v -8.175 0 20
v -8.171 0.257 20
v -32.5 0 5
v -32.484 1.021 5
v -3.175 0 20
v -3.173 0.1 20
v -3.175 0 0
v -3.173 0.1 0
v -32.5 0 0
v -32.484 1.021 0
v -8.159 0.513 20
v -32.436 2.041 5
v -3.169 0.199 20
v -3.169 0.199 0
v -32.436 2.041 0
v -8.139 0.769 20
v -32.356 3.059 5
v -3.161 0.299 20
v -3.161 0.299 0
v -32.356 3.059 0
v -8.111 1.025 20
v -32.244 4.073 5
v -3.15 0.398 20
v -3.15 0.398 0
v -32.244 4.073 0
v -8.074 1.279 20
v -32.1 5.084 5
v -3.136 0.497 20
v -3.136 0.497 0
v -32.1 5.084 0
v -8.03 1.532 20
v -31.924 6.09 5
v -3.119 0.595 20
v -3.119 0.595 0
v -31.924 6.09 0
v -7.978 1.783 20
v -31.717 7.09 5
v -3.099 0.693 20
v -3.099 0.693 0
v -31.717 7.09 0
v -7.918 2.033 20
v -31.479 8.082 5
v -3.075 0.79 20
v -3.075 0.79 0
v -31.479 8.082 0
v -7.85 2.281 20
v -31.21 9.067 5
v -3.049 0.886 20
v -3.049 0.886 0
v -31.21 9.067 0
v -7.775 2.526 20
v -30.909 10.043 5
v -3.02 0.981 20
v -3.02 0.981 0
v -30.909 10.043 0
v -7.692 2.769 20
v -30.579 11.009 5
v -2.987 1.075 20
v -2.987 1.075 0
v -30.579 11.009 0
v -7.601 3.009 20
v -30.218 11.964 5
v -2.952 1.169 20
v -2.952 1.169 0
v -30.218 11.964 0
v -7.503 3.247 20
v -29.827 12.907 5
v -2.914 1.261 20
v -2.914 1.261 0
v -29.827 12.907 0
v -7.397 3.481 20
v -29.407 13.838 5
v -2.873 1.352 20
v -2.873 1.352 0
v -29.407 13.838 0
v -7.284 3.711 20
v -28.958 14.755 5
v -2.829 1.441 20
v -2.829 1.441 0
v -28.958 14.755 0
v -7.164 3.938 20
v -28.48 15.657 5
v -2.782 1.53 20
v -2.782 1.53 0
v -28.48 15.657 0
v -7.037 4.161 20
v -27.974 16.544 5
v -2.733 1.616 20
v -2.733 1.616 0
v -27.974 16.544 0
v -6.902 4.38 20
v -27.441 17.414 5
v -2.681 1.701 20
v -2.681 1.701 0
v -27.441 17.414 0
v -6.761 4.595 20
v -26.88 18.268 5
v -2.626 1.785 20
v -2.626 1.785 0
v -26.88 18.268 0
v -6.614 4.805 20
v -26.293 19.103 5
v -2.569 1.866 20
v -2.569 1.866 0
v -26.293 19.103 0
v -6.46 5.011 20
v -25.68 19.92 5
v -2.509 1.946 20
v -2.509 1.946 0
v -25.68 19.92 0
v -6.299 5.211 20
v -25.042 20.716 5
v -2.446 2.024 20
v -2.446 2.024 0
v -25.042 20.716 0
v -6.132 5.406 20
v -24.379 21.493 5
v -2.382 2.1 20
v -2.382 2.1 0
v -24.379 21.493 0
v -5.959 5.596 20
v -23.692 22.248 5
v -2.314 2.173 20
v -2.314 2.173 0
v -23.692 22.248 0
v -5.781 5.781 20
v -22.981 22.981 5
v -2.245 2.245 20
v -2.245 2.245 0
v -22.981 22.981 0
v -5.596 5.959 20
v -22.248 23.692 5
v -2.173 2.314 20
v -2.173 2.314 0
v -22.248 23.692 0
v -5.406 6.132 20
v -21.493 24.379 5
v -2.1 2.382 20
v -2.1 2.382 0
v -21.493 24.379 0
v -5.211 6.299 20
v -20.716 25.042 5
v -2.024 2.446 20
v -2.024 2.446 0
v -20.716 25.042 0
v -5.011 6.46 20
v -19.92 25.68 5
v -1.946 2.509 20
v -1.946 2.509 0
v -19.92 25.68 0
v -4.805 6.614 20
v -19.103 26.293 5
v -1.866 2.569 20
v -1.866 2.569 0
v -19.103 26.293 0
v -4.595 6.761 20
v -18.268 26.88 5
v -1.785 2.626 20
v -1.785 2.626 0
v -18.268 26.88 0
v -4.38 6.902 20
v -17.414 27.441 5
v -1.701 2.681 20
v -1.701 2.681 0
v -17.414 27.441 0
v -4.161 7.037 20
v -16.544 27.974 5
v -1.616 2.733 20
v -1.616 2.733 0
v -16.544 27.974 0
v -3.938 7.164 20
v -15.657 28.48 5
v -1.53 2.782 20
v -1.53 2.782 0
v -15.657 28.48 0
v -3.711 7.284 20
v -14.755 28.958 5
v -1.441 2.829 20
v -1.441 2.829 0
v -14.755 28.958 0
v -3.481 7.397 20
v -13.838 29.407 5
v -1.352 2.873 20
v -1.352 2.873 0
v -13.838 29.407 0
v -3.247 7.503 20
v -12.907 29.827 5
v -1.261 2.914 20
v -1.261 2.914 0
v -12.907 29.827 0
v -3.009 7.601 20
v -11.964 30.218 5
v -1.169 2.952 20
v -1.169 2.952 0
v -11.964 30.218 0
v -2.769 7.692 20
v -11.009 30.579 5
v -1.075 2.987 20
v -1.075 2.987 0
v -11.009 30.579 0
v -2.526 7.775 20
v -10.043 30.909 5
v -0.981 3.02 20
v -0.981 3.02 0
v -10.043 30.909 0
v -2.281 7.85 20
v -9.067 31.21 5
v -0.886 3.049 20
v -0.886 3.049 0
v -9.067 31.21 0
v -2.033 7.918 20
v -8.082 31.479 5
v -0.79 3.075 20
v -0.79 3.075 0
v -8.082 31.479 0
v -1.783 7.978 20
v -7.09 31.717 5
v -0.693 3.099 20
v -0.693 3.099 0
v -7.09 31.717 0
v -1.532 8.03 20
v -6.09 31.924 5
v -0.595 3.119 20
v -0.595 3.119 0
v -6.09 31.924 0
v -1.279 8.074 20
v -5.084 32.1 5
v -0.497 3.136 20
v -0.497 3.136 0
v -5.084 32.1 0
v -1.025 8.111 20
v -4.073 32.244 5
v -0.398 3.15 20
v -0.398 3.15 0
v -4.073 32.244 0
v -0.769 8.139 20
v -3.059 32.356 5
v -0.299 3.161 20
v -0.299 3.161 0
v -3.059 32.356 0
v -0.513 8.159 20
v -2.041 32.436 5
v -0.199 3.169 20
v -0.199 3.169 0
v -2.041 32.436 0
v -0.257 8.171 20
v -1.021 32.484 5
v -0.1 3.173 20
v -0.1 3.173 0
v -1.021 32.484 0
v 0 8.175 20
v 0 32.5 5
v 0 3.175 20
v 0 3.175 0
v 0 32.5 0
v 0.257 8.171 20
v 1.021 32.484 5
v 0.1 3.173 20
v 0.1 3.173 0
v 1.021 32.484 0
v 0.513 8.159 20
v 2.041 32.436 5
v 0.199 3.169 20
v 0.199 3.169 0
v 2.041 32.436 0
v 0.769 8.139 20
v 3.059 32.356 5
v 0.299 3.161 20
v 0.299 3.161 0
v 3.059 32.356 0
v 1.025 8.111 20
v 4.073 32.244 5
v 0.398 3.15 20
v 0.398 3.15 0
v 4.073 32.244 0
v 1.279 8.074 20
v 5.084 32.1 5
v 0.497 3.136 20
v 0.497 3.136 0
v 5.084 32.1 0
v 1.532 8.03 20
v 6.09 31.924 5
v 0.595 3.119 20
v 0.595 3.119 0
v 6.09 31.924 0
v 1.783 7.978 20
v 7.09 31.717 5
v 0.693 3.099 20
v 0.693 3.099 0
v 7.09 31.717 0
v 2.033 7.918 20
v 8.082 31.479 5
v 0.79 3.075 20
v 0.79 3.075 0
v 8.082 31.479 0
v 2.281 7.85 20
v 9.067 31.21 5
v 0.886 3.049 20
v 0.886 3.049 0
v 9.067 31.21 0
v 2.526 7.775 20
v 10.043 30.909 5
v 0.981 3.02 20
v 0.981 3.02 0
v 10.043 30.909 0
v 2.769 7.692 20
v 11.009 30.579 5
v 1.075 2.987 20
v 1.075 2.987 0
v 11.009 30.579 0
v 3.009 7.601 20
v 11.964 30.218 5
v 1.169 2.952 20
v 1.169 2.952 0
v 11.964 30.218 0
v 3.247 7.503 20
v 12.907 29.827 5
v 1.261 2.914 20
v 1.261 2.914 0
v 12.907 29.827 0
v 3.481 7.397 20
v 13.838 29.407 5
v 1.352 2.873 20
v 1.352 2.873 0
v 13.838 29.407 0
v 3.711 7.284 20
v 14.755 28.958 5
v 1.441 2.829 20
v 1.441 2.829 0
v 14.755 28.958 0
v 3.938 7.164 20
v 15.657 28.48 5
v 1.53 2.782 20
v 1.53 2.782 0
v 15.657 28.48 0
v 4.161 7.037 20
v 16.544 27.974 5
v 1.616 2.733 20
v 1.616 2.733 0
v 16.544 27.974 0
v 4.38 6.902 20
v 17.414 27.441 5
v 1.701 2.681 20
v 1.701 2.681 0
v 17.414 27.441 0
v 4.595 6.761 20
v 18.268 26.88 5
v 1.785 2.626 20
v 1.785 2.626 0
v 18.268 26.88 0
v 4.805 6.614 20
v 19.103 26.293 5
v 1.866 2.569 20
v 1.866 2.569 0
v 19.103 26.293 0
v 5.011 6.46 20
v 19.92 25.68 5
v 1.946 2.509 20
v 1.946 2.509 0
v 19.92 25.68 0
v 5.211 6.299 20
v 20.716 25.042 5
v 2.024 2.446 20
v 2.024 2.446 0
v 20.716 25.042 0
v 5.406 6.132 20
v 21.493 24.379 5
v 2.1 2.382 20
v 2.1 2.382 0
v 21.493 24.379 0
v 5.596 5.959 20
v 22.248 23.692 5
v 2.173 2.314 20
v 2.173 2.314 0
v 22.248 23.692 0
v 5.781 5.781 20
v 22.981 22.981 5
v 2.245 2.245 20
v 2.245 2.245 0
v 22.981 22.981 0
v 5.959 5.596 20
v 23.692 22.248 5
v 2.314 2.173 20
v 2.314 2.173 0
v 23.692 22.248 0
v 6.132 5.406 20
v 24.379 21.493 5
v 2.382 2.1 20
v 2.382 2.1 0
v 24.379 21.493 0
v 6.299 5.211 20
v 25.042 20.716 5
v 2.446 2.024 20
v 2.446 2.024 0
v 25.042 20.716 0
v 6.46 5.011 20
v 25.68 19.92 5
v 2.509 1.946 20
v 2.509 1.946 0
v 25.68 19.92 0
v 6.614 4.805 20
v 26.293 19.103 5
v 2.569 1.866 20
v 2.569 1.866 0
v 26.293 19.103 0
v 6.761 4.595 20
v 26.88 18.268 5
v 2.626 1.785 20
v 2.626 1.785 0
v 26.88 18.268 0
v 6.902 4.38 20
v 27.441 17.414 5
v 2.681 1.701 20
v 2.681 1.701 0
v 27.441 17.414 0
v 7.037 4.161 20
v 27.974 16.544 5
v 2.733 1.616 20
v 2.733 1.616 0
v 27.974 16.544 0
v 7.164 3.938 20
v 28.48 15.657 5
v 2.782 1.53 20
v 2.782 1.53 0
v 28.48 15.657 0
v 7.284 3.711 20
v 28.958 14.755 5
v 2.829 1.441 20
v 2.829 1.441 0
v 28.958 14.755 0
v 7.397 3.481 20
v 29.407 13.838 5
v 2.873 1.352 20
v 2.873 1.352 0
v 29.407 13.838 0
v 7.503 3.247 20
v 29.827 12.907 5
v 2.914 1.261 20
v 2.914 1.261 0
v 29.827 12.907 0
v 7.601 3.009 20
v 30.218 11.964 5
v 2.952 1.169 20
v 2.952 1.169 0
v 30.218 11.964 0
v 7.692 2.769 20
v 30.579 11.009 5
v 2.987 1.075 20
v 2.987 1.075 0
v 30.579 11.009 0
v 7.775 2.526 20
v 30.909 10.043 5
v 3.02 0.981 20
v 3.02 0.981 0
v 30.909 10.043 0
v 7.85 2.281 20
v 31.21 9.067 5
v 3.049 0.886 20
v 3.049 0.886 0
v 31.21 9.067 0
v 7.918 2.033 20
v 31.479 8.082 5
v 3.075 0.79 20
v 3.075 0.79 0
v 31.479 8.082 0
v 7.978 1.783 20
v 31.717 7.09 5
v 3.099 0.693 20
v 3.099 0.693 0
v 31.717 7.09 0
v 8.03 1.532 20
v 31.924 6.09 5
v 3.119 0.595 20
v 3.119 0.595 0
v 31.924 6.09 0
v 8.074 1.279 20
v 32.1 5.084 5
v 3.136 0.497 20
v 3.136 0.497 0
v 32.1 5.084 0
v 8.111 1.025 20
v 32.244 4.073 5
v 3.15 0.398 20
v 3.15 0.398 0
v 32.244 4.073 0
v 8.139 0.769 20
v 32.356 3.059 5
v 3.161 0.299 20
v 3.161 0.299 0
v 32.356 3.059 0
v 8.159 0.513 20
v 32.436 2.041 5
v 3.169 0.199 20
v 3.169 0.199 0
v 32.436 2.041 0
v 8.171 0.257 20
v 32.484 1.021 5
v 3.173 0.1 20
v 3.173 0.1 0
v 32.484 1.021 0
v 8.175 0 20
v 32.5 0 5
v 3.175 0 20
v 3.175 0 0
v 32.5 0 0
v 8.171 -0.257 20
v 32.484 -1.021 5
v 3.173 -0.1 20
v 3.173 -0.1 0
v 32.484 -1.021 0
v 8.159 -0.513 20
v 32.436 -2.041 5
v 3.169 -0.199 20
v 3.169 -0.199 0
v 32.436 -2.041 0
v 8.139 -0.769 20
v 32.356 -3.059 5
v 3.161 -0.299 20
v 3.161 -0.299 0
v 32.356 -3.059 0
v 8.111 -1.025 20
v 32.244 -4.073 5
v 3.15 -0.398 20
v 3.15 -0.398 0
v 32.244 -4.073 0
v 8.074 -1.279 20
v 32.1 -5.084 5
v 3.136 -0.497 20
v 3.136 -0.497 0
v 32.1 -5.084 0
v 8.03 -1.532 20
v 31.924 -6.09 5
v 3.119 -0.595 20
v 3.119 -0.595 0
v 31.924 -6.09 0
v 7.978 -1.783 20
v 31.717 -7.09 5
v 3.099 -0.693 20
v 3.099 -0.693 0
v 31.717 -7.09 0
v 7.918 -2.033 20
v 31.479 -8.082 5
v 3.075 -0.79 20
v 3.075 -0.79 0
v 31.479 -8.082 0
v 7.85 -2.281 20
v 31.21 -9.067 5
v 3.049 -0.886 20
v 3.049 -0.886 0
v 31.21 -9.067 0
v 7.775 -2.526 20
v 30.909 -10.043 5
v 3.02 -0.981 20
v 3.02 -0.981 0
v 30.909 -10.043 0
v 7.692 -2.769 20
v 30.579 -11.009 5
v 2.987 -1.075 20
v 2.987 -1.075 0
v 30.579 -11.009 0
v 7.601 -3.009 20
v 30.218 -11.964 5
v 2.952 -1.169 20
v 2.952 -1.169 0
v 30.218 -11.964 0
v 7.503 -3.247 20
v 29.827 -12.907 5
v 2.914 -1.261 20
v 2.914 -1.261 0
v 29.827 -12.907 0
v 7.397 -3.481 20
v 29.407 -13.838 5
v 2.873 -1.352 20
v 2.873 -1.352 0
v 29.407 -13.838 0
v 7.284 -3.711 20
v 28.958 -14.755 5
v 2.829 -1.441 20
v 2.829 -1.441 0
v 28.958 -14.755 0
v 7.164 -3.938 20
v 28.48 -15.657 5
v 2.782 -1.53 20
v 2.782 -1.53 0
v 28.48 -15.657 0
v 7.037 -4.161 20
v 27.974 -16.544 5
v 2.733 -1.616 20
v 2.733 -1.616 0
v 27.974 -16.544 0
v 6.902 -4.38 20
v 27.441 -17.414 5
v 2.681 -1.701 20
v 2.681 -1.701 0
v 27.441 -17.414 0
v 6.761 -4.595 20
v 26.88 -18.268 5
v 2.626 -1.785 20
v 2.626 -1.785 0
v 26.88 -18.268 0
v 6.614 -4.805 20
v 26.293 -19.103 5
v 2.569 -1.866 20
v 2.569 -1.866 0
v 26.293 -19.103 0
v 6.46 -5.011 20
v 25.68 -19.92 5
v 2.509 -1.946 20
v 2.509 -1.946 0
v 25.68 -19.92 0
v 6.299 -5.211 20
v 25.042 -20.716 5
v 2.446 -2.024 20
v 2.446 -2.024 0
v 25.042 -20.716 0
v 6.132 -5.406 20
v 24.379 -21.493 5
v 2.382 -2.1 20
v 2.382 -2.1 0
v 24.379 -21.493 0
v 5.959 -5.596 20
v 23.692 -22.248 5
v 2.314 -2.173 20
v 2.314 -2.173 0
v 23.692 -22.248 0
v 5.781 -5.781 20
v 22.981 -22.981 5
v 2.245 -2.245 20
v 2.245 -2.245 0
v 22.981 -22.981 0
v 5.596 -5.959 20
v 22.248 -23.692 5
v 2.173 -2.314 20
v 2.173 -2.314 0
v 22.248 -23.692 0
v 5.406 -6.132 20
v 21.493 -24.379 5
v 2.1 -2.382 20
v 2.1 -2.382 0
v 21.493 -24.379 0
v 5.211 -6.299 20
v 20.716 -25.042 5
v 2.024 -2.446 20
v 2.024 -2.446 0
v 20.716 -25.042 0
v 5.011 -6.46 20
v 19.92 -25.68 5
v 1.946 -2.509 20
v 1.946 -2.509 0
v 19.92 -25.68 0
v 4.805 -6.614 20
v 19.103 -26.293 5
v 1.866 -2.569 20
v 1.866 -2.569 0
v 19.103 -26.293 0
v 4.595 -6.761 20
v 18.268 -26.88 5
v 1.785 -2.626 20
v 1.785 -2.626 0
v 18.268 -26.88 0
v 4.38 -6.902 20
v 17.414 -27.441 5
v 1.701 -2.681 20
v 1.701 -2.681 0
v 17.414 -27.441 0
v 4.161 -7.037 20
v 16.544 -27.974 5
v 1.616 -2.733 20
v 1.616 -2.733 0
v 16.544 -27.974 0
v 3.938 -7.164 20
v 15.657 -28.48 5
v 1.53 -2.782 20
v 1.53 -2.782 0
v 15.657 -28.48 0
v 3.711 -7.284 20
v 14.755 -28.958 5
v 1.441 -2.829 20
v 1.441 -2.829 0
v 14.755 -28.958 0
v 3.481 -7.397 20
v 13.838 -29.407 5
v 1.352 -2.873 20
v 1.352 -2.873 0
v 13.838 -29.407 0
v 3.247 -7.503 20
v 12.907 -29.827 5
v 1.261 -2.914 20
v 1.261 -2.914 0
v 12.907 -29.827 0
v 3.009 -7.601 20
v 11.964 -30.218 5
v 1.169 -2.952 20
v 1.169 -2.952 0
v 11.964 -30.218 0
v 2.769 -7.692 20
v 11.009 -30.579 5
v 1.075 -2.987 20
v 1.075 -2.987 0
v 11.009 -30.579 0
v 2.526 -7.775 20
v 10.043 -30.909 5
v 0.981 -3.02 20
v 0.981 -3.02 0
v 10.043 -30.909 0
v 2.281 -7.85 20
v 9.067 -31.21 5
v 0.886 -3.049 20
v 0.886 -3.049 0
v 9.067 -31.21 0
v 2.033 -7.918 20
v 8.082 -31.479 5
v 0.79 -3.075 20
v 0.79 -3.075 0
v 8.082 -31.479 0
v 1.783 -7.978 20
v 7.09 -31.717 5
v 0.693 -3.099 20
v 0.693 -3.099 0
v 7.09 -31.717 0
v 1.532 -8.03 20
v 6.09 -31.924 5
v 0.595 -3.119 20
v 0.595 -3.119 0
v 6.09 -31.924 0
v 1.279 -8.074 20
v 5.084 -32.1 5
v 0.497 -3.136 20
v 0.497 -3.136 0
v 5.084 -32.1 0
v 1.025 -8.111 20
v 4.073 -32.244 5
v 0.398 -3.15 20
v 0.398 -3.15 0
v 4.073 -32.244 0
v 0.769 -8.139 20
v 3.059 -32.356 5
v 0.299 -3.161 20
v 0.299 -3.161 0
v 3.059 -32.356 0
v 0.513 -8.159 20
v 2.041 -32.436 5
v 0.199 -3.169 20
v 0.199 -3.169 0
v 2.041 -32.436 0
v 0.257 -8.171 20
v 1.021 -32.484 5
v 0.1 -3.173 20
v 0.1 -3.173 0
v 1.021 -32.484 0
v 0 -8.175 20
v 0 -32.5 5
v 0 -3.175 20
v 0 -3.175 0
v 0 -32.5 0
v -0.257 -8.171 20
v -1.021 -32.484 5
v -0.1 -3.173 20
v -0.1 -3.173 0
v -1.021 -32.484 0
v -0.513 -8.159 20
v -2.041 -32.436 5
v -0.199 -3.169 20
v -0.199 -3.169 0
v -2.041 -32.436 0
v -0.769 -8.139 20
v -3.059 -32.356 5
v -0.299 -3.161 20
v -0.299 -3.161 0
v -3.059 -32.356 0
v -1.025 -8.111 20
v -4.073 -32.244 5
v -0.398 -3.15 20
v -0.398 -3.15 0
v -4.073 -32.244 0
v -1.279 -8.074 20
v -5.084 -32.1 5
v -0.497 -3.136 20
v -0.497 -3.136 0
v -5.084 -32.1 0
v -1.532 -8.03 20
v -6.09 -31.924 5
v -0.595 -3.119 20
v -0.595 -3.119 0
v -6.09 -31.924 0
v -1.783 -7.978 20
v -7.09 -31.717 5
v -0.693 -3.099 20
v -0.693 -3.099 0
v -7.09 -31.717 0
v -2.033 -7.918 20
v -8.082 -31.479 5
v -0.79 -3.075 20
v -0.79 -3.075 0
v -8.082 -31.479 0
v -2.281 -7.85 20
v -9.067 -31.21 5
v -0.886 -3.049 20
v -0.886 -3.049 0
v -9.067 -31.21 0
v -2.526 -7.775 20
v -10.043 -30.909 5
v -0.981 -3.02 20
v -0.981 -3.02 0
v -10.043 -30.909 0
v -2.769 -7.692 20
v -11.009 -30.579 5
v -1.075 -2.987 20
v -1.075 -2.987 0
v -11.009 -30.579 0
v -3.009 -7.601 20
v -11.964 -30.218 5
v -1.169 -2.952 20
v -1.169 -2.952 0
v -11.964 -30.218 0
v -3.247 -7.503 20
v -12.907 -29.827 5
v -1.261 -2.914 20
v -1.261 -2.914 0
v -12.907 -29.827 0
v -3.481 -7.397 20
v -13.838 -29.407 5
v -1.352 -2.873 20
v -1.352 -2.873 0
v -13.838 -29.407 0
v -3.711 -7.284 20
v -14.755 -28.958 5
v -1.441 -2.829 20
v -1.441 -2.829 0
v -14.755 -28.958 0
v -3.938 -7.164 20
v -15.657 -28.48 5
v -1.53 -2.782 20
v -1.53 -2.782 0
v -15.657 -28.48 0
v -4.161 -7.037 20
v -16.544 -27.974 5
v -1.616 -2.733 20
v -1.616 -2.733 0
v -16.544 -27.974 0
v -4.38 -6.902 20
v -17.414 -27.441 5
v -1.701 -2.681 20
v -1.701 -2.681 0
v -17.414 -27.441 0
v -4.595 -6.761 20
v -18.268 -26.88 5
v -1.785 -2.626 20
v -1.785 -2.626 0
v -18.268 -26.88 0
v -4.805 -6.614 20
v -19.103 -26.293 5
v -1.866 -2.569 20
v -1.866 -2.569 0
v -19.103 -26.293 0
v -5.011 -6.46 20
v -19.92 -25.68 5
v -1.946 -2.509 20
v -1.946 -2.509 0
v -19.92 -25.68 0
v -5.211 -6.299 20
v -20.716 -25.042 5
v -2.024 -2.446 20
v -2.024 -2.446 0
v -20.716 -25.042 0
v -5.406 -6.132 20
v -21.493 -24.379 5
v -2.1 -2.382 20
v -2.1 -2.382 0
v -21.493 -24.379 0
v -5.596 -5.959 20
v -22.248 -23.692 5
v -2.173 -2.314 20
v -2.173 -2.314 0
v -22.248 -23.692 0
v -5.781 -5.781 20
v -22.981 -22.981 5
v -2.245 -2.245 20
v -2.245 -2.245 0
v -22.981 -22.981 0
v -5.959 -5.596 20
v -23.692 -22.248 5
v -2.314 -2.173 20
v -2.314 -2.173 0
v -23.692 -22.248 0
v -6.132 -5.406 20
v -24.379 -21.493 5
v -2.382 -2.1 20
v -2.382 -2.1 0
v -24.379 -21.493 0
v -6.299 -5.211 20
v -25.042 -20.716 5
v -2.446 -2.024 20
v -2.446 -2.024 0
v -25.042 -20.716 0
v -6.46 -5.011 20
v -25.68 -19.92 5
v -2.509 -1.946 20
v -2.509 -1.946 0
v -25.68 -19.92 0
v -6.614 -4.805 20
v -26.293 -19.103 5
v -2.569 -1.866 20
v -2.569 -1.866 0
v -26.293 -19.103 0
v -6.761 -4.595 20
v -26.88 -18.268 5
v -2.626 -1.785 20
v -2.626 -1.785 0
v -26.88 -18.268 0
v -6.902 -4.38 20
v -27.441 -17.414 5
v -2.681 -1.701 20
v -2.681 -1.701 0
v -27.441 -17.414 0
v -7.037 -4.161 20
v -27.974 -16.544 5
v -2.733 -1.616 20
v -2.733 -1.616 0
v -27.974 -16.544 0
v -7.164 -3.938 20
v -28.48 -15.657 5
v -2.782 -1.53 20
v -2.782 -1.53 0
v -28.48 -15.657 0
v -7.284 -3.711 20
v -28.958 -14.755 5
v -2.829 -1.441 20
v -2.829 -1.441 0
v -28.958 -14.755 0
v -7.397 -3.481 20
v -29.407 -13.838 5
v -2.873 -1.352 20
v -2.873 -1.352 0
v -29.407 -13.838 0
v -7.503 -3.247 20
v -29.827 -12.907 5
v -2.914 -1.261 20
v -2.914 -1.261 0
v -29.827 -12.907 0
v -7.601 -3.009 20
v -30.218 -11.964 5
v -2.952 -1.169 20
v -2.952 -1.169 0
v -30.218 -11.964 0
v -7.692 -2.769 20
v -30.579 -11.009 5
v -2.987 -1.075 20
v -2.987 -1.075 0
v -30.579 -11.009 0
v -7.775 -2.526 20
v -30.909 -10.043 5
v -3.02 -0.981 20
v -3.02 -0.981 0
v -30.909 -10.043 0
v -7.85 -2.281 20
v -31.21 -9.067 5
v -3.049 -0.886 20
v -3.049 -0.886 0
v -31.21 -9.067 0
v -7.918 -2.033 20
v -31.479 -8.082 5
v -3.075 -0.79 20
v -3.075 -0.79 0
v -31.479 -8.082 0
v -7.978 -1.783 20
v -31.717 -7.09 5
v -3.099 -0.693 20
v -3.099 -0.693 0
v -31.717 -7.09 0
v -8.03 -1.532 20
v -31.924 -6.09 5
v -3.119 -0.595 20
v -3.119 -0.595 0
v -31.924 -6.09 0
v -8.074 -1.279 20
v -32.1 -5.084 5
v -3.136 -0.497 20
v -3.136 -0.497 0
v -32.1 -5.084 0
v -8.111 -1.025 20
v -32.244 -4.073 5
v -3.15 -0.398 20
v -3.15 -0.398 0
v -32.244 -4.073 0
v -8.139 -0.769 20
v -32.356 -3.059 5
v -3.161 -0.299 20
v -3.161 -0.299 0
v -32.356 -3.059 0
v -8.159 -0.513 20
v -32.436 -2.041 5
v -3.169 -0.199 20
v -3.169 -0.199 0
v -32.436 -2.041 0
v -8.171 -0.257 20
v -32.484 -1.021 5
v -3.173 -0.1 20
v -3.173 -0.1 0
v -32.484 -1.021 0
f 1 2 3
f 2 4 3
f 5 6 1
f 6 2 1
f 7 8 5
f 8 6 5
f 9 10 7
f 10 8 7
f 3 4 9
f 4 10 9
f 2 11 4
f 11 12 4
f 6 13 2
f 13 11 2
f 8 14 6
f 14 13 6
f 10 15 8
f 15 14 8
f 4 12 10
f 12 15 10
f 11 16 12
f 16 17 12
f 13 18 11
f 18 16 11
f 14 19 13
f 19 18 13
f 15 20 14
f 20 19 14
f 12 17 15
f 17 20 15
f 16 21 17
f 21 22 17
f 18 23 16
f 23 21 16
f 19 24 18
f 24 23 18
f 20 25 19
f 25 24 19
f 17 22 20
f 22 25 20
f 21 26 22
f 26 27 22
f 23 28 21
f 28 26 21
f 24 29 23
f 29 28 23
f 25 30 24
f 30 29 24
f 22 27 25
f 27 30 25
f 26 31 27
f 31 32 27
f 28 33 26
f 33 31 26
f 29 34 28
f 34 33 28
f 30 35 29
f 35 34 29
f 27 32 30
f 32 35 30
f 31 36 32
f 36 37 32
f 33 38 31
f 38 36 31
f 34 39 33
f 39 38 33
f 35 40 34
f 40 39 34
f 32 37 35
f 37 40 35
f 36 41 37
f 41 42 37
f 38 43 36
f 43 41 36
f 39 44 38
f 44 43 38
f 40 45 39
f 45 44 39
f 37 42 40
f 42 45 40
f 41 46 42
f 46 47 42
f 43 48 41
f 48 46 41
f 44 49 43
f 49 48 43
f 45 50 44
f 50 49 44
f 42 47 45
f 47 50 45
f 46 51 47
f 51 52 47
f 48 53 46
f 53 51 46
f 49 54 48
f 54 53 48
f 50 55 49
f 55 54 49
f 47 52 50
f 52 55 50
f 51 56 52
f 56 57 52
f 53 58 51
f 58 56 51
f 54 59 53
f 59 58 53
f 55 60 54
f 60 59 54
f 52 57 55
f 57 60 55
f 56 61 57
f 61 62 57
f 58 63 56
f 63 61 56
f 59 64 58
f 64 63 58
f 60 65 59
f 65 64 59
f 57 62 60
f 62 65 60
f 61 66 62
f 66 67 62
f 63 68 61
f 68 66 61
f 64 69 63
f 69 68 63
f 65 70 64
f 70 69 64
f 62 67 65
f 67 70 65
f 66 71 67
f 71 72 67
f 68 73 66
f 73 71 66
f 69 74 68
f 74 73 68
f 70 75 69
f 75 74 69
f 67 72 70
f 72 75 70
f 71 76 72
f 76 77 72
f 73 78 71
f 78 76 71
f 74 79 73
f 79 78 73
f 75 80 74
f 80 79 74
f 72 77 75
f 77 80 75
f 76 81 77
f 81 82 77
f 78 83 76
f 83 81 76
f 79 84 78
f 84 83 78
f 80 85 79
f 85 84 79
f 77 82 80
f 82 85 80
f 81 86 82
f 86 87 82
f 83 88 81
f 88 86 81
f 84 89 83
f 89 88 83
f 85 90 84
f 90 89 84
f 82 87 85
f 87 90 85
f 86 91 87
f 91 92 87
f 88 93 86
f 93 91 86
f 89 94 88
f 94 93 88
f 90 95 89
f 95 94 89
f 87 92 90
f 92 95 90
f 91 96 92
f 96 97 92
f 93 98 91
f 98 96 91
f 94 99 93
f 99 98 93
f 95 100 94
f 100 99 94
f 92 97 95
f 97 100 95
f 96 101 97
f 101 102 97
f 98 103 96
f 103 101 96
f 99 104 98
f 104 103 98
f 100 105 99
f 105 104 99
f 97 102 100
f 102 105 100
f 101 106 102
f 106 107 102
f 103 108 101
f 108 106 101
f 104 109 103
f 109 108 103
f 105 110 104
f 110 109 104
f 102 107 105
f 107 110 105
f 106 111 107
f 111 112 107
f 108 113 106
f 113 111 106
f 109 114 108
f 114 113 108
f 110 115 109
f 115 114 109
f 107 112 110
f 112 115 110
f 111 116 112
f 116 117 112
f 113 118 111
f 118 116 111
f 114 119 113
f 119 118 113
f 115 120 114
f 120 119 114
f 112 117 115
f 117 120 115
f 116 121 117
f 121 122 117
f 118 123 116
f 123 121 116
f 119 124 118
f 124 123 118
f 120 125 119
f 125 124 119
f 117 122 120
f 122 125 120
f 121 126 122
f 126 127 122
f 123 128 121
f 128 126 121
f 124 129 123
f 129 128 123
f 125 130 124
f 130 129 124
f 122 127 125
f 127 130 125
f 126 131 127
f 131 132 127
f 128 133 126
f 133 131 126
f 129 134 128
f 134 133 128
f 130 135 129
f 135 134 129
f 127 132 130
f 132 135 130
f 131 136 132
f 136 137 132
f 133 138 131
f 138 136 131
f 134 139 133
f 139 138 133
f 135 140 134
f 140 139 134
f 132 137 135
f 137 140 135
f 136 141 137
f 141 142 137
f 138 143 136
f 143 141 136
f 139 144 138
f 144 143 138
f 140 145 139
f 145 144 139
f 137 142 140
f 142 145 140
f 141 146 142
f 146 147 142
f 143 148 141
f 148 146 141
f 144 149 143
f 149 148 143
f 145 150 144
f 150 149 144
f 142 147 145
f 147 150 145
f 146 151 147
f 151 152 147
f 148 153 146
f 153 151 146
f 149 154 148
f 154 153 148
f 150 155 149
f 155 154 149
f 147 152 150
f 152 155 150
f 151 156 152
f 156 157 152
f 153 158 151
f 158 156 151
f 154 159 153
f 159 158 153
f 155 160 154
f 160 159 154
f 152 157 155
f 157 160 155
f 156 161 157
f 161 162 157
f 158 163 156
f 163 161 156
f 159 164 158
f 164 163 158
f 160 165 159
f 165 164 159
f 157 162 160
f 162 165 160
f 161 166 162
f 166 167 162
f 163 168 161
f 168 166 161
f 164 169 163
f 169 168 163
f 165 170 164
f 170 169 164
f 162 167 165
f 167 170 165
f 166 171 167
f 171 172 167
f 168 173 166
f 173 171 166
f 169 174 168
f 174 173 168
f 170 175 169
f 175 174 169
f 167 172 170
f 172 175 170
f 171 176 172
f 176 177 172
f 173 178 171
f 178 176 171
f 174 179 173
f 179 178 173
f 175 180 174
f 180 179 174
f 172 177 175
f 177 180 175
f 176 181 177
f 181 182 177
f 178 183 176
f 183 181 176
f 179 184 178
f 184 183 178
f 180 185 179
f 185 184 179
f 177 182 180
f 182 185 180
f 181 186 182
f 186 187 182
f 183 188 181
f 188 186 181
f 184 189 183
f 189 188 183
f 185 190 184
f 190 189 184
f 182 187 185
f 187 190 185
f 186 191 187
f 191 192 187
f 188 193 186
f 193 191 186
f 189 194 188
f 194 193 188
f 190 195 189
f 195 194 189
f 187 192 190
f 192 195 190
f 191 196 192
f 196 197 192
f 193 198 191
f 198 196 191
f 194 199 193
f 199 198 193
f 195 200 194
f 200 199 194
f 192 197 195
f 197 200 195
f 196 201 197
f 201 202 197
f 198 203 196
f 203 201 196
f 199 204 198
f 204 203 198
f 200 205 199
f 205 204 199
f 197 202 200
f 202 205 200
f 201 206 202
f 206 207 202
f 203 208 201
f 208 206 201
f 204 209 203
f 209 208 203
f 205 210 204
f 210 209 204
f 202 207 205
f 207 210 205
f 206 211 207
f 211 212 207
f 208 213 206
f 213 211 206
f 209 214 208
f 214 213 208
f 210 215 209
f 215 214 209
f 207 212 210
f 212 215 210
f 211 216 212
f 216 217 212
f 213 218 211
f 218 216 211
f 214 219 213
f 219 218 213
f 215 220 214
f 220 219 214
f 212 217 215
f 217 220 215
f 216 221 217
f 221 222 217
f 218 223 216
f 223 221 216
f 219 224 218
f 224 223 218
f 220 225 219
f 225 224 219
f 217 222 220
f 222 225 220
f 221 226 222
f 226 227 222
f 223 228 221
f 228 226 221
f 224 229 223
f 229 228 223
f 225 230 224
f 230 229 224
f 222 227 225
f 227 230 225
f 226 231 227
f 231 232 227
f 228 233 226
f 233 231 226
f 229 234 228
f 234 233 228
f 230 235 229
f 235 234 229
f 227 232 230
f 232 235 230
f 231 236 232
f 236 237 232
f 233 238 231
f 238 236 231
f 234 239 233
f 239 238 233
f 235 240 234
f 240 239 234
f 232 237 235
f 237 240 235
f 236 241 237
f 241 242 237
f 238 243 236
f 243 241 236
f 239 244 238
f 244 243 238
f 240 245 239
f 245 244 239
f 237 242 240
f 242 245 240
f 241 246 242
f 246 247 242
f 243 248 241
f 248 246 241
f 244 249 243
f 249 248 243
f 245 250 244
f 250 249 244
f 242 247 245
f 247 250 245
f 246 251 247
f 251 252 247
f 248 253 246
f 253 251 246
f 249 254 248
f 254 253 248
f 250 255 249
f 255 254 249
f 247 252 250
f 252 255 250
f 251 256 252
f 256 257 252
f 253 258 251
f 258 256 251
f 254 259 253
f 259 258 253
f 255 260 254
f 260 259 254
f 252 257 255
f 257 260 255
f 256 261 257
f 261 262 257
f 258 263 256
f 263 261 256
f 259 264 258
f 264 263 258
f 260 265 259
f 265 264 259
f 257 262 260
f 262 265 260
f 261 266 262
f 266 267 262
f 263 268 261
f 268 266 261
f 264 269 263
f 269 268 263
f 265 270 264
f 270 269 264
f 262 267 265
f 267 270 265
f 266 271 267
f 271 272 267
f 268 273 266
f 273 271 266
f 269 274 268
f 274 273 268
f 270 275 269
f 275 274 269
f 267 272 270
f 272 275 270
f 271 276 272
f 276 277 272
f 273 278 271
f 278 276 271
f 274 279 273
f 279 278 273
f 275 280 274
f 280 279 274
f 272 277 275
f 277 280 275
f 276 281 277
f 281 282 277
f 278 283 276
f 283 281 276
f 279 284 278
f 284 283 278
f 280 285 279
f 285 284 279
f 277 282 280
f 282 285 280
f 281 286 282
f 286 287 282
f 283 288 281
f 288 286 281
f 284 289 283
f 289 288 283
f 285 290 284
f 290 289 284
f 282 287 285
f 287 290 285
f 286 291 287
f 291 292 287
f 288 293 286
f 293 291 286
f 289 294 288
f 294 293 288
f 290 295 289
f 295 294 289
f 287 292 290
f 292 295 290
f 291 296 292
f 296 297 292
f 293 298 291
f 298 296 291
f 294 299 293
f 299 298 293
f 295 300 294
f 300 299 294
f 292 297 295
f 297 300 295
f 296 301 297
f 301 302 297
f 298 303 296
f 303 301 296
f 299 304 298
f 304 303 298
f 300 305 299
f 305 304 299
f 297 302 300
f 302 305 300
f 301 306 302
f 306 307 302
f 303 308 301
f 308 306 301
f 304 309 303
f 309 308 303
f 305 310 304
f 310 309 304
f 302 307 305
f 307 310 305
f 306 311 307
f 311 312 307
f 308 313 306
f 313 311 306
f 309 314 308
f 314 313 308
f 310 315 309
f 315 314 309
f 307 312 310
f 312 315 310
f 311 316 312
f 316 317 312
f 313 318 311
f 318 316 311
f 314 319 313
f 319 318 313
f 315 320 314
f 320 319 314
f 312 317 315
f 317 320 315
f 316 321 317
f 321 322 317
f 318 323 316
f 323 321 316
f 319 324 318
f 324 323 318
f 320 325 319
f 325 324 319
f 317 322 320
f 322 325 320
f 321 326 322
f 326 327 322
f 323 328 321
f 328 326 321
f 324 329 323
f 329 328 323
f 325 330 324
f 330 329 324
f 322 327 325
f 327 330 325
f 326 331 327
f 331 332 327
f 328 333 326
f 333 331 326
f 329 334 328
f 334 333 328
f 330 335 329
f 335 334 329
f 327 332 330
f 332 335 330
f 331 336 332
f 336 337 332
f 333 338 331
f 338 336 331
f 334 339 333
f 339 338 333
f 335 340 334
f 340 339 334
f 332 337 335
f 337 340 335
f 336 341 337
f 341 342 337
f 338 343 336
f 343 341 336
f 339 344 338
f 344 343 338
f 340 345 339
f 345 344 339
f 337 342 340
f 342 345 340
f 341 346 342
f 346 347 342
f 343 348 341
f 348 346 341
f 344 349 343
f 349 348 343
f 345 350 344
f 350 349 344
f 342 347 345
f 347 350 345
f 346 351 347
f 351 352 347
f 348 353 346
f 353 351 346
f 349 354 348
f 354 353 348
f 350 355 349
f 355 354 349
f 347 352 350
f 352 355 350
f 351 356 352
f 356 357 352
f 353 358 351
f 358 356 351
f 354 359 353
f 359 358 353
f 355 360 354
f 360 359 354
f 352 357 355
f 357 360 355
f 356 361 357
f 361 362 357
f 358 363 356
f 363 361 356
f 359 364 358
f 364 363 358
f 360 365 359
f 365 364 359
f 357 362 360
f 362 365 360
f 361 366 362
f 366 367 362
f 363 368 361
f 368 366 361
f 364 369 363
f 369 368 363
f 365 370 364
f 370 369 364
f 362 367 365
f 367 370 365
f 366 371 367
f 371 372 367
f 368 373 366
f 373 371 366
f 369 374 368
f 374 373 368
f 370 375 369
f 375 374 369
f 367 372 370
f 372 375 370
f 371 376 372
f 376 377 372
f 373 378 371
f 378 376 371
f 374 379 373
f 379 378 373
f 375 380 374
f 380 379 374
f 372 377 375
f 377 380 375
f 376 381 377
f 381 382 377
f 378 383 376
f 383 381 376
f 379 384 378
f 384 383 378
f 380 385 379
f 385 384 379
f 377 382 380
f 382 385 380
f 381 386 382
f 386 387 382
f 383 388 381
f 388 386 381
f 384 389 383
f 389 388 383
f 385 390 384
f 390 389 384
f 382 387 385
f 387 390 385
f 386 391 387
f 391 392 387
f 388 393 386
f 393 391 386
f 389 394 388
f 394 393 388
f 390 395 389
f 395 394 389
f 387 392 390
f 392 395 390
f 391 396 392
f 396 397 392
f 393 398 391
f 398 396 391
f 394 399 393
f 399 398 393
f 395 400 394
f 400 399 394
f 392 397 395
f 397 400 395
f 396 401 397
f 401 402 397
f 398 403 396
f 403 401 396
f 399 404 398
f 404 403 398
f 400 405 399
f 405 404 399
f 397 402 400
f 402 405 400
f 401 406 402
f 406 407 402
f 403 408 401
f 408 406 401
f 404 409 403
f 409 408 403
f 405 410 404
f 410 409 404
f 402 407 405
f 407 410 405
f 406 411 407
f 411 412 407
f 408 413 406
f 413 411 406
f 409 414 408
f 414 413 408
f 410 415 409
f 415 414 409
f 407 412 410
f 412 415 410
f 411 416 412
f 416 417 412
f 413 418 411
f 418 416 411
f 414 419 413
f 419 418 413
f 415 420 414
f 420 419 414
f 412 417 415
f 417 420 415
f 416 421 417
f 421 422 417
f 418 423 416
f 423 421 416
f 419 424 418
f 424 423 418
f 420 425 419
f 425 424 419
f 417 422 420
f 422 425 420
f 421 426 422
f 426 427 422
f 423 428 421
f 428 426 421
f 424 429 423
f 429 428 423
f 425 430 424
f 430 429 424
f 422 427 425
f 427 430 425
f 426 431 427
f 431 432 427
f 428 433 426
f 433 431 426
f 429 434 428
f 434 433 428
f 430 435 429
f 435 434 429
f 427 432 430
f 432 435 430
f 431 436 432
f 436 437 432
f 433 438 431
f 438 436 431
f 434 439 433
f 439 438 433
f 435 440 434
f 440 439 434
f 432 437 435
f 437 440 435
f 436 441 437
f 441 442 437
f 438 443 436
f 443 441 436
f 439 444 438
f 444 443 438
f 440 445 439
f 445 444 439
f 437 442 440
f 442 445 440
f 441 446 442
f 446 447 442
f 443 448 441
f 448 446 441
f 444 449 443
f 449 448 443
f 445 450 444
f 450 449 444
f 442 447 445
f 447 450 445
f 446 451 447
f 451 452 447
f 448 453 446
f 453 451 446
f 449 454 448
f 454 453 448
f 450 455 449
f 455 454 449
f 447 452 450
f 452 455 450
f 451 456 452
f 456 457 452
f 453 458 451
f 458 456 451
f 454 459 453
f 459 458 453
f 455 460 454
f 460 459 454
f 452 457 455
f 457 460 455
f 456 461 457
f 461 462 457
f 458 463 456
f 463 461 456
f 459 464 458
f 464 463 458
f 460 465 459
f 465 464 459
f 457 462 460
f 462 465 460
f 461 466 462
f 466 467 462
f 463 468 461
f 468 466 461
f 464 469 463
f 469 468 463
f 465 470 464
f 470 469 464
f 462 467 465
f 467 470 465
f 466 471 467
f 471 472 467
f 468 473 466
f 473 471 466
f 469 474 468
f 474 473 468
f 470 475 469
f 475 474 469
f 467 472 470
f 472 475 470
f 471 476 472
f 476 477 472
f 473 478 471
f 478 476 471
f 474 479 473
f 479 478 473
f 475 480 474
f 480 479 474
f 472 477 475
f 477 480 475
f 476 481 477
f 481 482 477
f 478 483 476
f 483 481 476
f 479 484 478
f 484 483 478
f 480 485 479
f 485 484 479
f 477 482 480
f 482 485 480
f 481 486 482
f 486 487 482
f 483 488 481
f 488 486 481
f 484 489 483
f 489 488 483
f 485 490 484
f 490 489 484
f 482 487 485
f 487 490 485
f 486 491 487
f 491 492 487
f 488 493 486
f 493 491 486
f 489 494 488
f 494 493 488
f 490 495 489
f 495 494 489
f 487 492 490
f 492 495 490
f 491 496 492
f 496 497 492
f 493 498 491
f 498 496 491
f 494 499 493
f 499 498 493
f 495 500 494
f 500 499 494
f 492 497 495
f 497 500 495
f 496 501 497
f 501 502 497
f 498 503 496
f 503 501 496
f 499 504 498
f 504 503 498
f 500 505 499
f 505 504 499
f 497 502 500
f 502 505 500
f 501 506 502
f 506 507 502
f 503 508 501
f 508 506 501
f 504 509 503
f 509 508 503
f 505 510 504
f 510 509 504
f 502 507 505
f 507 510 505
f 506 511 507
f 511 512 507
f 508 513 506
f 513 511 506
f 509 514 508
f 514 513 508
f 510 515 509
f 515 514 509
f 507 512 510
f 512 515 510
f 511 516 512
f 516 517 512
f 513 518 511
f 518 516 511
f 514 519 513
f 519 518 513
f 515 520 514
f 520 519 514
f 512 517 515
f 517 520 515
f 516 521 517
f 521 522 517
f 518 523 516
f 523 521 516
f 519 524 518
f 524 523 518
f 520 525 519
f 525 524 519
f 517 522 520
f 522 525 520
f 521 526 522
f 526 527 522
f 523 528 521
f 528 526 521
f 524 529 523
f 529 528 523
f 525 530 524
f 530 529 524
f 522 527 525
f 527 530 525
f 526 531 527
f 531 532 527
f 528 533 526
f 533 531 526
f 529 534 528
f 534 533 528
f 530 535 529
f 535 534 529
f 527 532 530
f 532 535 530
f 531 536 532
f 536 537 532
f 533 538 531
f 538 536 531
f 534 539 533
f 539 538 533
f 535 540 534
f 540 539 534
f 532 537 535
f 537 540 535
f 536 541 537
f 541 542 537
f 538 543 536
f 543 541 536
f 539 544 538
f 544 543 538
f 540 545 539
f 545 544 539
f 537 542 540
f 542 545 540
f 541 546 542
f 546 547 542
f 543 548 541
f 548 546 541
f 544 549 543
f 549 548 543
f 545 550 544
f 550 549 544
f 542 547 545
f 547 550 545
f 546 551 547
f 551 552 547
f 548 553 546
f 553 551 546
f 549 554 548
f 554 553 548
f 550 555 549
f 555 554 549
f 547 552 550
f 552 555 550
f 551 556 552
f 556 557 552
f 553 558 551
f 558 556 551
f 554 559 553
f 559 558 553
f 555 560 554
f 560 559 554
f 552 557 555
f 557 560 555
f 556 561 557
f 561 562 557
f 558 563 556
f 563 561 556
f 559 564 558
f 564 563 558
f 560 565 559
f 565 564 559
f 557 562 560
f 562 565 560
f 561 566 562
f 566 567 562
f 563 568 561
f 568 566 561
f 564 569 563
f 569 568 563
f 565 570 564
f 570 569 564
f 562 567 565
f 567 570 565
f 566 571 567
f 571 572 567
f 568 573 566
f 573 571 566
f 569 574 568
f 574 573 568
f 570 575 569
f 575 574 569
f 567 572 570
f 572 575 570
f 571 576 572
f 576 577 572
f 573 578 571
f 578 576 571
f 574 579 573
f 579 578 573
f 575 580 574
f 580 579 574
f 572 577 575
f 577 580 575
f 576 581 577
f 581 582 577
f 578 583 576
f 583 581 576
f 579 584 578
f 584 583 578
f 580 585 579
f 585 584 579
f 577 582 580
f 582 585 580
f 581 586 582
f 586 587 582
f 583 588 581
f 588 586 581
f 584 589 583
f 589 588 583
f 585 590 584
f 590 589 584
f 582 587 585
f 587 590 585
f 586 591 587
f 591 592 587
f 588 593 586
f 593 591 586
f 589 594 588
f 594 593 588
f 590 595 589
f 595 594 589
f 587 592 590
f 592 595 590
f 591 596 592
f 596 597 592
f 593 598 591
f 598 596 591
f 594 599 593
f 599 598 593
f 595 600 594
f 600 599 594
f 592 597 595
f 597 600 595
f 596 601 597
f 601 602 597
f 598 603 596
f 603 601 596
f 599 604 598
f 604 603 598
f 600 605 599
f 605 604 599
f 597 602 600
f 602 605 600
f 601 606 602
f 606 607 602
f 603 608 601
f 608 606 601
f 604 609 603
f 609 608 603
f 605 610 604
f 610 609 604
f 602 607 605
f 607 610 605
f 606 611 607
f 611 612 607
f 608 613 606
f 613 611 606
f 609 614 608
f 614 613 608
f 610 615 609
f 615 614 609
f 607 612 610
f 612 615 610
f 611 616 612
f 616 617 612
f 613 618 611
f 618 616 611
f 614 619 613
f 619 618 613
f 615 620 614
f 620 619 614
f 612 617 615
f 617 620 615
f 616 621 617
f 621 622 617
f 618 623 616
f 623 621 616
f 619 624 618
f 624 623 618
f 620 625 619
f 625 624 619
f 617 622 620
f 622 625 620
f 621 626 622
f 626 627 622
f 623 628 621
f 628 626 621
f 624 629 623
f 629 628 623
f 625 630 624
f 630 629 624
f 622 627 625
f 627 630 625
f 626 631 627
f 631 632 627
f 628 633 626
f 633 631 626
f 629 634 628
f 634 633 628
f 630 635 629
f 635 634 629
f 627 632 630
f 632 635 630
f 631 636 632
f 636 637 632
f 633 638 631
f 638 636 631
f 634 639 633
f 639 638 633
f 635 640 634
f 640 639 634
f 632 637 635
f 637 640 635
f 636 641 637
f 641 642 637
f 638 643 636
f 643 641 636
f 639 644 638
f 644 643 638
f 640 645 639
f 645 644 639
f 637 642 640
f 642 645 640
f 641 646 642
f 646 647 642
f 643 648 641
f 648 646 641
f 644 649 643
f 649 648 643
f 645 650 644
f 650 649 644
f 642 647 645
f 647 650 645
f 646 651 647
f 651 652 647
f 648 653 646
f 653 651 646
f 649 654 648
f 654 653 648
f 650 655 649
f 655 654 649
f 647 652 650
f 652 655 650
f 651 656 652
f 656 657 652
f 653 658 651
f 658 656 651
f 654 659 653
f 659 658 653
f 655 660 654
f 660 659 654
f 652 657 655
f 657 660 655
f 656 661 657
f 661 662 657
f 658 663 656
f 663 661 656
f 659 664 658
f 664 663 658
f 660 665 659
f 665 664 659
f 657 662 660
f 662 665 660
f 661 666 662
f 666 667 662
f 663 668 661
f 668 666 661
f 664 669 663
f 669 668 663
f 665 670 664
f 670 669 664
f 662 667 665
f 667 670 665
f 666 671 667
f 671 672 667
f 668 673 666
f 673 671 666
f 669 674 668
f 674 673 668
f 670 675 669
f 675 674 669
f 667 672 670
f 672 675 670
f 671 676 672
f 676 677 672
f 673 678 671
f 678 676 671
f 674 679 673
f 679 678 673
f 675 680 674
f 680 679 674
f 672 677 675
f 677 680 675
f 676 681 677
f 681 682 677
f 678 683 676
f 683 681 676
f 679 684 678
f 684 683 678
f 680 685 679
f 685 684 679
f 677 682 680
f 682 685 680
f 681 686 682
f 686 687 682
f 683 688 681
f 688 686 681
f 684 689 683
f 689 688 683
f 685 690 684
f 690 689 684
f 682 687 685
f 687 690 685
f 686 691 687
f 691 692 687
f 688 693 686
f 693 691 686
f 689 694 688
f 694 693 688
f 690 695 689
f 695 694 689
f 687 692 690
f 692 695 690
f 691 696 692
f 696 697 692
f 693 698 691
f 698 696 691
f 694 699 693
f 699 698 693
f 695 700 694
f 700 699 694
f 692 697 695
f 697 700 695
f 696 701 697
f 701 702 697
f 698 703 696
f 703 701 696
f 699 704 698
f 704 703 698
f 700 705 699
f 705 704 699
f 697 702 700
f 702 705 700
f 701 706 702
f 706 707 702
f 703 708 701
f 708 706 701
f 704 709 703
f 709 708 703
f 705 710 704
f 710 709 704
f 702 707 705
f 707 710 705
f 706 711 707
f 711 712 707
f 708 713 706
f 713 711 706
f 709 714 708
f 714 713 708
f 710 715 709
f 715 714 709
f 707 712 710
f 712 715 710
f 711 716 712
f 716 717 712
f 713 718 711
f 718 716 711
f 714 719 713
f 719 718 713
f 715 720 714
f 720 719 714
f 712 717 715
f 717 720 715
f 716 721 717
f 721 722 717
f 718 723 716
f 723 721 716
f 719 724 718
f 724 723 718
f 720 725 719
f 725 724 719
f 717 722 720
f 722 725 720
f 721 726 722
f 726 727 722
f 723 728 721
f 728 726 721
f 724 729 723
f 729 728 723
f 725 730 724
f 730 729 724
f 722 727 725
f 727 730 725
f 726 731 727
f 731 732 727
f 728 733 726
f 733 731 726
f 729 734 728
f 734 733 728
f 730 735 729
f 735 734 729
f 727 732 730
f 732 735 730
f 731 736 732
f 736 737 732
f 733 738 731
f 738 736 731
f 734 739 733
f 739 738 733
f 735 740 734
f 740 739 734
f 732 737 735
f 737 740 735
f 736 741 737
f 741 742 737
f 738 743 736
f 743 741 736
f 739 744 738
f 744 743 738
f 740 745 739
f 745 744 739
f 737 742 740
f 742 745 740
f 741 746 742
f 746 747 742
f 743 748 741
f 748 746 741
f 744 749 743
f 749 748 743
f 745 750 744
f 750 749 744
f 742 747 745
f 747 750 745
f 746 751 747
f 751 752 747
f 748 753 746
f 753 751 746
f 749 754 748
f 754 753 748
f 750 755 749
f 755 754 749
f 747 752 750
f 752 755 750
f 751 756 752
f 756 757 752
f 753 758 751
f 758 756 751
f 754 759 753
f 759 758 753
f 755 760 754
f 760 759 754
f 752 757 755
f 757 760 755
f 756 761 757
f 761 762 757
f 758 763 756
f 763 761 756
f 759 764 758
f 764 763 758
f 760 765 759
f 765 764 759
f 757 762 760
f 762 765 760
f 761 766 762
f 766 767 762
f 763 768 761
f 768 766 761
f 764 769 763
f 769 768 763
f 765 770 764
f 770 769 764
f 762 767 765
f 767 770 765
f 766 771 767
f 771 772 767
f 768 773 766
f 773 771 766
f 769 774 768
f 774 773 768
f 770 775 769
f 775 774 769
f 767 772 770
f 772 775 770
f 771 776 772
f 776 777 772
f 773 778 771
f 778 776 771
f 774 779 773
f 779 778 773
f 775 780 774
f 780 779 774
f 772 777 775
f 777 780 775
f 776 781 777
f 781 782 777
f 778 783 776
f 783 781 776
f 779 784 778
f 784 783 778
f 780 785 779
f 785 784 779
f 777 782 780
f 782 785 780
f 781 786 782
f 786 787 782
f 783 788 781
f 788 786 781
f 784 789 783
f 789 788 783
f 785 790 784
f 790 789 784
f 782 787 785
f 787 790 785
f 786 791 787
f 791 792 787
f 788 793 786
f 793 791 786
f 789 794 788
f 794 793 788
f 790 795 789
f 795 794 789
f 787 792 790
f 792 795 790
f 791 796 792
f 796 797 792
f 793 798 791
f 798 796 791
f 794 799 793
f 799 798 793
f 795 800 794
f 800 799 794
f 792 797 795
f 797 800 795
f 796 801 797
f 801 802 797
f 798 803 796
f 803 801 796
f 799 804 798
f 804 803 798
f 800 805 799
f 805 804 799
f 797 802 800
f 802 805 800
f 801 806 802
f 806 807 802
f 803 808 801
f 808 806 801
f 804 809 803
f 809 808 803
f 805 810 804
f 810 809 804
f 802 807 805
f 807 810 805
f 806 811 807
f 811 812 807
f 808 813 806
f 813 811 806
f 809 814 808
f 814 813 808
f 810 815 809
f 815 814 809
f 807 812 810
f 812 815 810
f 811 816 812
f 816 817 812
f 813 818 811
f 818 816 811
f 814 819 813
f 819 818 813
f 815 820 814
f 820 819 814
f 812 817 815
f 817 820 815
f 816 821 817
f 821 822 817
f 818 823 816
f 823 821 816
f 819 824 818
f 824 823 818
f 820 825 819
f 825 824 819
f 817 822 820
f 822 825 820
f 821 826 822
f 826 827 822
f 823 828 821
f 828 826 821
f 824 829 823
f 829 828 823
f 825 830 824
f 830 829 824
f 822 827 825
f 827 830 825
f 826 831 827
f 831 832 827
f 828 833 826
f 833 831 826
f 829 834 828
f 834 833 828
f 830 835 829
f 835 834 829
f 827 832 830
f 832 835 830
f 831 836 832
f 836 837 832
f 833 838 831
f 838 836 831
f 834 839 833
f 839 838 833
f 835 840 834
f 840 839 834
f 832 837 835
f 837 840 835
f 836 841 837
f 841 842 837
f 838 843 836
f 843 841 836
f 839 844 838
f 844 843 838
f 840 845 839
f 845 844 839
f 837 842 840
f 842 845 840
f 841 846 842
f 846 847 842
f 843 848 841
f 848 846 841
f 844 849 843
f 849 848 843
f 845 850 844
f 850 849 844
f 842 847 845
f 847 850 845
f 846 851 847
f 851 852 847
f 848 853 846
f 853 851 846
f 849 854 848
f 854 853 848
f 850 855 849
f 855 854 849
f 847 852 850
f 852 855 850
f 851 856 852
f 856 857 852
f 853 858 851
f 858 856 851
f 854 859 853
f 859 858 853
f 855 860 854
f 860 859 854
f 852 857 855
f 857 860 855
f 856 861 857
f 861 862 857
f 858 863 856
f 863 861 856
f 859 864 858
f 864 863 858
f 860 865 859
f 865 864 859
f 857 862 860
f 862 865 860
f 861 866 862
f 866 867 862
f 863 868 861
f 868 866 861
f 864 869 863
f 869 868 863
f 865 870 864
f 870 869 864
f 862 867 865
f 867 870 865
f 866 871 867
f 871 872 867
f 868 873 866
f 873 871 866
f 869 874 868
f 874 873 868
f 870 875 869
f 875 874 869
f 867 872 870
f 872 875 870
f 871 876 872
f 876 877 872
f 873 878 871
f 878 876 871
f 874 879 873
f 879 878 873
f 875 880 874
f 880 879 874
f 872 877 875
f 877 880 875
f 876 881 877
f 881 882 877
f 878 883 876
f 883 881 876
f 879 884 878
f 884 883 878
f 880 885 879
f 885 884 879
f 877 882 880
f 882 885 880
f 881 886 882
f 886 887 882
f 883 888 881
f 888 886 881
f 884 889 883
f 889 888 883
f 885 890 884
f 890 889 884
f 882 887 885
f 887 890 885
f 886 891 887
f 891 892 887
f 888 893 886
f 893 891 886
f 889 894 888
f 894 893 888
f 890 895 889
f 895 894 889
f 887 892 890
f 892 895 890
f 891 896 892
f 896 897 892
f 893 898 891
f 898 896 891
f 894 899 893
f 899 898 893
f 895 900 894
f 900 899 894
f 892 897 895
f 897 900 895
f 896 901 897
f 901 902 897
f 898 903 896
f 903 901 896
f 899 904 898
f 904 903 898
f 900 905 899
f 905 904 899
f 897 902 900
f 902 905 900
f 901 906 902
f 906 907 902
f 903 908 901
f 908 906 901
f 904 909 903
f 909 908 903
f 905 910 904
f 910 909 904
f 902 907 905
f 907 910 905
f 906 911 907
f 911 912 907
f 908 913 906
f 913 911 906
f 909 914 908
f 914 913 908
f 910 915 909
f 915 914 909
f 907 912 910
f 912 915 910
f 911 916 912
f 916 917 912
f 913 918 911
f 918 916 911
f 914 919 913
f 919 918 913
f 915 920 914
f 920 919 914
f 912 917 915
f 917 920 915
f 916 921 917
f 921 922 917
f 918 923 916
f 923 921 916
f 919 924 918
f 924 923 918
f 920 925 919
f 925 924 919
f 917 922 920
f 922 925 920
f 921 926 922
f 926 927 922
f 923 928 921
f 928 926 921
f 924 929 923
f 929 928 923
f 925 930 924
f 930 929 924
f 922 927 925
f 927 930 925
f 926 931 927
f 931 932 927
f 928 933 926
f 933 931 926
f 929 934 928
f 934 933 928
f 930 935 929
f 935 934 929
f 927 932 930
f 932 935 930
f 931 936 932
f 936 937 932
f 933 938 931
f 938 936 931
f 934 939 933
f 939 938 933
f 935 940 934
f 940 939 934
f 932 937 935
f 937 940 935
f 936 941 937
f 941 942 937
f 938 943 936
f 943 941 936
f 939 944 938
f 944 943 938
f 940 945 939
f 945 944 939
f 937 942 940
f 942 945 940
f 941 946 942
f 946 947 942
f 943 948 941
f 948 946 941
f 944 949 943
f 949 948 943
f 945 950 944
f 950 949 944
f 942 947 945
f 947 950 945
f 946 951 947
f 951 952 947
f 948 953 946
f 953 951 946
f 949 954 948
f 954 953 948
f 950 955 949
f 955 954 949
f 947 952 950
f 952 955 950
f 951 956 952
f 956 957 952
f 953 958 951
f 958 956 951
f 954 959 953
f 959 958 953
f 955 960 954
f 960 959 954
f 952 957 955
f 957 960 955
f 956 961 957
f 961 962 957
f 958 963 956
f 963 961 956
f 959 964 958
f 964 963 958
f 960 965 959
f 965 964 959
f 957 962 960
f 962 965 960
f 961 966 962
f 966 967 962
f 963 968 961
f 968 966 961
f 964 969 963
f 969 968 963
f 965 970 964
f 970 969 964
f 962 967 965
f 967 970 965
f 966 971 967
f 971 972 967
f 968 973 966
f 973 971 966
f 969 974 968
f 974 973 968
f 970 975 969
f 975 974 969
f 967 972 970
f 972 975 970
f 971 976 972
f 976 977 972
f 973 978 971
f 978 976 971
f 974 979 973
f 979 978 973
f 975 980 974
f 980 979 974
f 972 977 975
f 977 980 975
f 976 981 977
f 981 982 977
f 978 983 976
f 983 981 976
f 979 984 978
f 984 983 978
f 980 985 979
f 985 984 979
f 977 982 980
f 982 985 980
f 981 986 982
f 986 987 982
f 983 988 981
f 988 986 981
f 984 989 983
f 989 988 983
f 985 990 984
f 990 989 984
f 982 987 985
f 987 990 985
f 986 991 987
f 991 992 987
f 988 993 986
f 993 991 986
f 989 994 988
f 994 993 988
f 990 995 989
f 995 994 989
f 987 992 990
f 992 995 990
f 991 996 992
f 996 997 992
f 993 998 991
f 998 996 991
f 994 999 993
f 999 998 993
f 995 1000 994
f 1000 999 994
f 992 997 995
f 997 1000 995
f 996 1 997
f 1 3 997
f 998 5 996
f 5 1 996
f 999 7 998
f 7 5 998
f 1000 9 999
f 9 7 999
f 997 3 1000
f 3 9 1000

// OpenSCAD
centerRadius = 6.35/2;
baseRadius = 65/2;
baseThickness = 5;
tipThickness = 5;
tipDepth = 15;


rotate_extrude($fn=200) polygon(points = [
    [ centerRadius, 0],
    [ baseRadius, 0],
    [ baseRadius, baseThickness],
    [ centerRadius+tipThickness, baseThickness+tipDepth],
    [ centerRadius, baseThickness+tipDepth]
]);

//rotate_extrude($fn=200) polygon( points=[[0,0],[2,1],[1,2],[1,3],[3,4],[0,5]] );
